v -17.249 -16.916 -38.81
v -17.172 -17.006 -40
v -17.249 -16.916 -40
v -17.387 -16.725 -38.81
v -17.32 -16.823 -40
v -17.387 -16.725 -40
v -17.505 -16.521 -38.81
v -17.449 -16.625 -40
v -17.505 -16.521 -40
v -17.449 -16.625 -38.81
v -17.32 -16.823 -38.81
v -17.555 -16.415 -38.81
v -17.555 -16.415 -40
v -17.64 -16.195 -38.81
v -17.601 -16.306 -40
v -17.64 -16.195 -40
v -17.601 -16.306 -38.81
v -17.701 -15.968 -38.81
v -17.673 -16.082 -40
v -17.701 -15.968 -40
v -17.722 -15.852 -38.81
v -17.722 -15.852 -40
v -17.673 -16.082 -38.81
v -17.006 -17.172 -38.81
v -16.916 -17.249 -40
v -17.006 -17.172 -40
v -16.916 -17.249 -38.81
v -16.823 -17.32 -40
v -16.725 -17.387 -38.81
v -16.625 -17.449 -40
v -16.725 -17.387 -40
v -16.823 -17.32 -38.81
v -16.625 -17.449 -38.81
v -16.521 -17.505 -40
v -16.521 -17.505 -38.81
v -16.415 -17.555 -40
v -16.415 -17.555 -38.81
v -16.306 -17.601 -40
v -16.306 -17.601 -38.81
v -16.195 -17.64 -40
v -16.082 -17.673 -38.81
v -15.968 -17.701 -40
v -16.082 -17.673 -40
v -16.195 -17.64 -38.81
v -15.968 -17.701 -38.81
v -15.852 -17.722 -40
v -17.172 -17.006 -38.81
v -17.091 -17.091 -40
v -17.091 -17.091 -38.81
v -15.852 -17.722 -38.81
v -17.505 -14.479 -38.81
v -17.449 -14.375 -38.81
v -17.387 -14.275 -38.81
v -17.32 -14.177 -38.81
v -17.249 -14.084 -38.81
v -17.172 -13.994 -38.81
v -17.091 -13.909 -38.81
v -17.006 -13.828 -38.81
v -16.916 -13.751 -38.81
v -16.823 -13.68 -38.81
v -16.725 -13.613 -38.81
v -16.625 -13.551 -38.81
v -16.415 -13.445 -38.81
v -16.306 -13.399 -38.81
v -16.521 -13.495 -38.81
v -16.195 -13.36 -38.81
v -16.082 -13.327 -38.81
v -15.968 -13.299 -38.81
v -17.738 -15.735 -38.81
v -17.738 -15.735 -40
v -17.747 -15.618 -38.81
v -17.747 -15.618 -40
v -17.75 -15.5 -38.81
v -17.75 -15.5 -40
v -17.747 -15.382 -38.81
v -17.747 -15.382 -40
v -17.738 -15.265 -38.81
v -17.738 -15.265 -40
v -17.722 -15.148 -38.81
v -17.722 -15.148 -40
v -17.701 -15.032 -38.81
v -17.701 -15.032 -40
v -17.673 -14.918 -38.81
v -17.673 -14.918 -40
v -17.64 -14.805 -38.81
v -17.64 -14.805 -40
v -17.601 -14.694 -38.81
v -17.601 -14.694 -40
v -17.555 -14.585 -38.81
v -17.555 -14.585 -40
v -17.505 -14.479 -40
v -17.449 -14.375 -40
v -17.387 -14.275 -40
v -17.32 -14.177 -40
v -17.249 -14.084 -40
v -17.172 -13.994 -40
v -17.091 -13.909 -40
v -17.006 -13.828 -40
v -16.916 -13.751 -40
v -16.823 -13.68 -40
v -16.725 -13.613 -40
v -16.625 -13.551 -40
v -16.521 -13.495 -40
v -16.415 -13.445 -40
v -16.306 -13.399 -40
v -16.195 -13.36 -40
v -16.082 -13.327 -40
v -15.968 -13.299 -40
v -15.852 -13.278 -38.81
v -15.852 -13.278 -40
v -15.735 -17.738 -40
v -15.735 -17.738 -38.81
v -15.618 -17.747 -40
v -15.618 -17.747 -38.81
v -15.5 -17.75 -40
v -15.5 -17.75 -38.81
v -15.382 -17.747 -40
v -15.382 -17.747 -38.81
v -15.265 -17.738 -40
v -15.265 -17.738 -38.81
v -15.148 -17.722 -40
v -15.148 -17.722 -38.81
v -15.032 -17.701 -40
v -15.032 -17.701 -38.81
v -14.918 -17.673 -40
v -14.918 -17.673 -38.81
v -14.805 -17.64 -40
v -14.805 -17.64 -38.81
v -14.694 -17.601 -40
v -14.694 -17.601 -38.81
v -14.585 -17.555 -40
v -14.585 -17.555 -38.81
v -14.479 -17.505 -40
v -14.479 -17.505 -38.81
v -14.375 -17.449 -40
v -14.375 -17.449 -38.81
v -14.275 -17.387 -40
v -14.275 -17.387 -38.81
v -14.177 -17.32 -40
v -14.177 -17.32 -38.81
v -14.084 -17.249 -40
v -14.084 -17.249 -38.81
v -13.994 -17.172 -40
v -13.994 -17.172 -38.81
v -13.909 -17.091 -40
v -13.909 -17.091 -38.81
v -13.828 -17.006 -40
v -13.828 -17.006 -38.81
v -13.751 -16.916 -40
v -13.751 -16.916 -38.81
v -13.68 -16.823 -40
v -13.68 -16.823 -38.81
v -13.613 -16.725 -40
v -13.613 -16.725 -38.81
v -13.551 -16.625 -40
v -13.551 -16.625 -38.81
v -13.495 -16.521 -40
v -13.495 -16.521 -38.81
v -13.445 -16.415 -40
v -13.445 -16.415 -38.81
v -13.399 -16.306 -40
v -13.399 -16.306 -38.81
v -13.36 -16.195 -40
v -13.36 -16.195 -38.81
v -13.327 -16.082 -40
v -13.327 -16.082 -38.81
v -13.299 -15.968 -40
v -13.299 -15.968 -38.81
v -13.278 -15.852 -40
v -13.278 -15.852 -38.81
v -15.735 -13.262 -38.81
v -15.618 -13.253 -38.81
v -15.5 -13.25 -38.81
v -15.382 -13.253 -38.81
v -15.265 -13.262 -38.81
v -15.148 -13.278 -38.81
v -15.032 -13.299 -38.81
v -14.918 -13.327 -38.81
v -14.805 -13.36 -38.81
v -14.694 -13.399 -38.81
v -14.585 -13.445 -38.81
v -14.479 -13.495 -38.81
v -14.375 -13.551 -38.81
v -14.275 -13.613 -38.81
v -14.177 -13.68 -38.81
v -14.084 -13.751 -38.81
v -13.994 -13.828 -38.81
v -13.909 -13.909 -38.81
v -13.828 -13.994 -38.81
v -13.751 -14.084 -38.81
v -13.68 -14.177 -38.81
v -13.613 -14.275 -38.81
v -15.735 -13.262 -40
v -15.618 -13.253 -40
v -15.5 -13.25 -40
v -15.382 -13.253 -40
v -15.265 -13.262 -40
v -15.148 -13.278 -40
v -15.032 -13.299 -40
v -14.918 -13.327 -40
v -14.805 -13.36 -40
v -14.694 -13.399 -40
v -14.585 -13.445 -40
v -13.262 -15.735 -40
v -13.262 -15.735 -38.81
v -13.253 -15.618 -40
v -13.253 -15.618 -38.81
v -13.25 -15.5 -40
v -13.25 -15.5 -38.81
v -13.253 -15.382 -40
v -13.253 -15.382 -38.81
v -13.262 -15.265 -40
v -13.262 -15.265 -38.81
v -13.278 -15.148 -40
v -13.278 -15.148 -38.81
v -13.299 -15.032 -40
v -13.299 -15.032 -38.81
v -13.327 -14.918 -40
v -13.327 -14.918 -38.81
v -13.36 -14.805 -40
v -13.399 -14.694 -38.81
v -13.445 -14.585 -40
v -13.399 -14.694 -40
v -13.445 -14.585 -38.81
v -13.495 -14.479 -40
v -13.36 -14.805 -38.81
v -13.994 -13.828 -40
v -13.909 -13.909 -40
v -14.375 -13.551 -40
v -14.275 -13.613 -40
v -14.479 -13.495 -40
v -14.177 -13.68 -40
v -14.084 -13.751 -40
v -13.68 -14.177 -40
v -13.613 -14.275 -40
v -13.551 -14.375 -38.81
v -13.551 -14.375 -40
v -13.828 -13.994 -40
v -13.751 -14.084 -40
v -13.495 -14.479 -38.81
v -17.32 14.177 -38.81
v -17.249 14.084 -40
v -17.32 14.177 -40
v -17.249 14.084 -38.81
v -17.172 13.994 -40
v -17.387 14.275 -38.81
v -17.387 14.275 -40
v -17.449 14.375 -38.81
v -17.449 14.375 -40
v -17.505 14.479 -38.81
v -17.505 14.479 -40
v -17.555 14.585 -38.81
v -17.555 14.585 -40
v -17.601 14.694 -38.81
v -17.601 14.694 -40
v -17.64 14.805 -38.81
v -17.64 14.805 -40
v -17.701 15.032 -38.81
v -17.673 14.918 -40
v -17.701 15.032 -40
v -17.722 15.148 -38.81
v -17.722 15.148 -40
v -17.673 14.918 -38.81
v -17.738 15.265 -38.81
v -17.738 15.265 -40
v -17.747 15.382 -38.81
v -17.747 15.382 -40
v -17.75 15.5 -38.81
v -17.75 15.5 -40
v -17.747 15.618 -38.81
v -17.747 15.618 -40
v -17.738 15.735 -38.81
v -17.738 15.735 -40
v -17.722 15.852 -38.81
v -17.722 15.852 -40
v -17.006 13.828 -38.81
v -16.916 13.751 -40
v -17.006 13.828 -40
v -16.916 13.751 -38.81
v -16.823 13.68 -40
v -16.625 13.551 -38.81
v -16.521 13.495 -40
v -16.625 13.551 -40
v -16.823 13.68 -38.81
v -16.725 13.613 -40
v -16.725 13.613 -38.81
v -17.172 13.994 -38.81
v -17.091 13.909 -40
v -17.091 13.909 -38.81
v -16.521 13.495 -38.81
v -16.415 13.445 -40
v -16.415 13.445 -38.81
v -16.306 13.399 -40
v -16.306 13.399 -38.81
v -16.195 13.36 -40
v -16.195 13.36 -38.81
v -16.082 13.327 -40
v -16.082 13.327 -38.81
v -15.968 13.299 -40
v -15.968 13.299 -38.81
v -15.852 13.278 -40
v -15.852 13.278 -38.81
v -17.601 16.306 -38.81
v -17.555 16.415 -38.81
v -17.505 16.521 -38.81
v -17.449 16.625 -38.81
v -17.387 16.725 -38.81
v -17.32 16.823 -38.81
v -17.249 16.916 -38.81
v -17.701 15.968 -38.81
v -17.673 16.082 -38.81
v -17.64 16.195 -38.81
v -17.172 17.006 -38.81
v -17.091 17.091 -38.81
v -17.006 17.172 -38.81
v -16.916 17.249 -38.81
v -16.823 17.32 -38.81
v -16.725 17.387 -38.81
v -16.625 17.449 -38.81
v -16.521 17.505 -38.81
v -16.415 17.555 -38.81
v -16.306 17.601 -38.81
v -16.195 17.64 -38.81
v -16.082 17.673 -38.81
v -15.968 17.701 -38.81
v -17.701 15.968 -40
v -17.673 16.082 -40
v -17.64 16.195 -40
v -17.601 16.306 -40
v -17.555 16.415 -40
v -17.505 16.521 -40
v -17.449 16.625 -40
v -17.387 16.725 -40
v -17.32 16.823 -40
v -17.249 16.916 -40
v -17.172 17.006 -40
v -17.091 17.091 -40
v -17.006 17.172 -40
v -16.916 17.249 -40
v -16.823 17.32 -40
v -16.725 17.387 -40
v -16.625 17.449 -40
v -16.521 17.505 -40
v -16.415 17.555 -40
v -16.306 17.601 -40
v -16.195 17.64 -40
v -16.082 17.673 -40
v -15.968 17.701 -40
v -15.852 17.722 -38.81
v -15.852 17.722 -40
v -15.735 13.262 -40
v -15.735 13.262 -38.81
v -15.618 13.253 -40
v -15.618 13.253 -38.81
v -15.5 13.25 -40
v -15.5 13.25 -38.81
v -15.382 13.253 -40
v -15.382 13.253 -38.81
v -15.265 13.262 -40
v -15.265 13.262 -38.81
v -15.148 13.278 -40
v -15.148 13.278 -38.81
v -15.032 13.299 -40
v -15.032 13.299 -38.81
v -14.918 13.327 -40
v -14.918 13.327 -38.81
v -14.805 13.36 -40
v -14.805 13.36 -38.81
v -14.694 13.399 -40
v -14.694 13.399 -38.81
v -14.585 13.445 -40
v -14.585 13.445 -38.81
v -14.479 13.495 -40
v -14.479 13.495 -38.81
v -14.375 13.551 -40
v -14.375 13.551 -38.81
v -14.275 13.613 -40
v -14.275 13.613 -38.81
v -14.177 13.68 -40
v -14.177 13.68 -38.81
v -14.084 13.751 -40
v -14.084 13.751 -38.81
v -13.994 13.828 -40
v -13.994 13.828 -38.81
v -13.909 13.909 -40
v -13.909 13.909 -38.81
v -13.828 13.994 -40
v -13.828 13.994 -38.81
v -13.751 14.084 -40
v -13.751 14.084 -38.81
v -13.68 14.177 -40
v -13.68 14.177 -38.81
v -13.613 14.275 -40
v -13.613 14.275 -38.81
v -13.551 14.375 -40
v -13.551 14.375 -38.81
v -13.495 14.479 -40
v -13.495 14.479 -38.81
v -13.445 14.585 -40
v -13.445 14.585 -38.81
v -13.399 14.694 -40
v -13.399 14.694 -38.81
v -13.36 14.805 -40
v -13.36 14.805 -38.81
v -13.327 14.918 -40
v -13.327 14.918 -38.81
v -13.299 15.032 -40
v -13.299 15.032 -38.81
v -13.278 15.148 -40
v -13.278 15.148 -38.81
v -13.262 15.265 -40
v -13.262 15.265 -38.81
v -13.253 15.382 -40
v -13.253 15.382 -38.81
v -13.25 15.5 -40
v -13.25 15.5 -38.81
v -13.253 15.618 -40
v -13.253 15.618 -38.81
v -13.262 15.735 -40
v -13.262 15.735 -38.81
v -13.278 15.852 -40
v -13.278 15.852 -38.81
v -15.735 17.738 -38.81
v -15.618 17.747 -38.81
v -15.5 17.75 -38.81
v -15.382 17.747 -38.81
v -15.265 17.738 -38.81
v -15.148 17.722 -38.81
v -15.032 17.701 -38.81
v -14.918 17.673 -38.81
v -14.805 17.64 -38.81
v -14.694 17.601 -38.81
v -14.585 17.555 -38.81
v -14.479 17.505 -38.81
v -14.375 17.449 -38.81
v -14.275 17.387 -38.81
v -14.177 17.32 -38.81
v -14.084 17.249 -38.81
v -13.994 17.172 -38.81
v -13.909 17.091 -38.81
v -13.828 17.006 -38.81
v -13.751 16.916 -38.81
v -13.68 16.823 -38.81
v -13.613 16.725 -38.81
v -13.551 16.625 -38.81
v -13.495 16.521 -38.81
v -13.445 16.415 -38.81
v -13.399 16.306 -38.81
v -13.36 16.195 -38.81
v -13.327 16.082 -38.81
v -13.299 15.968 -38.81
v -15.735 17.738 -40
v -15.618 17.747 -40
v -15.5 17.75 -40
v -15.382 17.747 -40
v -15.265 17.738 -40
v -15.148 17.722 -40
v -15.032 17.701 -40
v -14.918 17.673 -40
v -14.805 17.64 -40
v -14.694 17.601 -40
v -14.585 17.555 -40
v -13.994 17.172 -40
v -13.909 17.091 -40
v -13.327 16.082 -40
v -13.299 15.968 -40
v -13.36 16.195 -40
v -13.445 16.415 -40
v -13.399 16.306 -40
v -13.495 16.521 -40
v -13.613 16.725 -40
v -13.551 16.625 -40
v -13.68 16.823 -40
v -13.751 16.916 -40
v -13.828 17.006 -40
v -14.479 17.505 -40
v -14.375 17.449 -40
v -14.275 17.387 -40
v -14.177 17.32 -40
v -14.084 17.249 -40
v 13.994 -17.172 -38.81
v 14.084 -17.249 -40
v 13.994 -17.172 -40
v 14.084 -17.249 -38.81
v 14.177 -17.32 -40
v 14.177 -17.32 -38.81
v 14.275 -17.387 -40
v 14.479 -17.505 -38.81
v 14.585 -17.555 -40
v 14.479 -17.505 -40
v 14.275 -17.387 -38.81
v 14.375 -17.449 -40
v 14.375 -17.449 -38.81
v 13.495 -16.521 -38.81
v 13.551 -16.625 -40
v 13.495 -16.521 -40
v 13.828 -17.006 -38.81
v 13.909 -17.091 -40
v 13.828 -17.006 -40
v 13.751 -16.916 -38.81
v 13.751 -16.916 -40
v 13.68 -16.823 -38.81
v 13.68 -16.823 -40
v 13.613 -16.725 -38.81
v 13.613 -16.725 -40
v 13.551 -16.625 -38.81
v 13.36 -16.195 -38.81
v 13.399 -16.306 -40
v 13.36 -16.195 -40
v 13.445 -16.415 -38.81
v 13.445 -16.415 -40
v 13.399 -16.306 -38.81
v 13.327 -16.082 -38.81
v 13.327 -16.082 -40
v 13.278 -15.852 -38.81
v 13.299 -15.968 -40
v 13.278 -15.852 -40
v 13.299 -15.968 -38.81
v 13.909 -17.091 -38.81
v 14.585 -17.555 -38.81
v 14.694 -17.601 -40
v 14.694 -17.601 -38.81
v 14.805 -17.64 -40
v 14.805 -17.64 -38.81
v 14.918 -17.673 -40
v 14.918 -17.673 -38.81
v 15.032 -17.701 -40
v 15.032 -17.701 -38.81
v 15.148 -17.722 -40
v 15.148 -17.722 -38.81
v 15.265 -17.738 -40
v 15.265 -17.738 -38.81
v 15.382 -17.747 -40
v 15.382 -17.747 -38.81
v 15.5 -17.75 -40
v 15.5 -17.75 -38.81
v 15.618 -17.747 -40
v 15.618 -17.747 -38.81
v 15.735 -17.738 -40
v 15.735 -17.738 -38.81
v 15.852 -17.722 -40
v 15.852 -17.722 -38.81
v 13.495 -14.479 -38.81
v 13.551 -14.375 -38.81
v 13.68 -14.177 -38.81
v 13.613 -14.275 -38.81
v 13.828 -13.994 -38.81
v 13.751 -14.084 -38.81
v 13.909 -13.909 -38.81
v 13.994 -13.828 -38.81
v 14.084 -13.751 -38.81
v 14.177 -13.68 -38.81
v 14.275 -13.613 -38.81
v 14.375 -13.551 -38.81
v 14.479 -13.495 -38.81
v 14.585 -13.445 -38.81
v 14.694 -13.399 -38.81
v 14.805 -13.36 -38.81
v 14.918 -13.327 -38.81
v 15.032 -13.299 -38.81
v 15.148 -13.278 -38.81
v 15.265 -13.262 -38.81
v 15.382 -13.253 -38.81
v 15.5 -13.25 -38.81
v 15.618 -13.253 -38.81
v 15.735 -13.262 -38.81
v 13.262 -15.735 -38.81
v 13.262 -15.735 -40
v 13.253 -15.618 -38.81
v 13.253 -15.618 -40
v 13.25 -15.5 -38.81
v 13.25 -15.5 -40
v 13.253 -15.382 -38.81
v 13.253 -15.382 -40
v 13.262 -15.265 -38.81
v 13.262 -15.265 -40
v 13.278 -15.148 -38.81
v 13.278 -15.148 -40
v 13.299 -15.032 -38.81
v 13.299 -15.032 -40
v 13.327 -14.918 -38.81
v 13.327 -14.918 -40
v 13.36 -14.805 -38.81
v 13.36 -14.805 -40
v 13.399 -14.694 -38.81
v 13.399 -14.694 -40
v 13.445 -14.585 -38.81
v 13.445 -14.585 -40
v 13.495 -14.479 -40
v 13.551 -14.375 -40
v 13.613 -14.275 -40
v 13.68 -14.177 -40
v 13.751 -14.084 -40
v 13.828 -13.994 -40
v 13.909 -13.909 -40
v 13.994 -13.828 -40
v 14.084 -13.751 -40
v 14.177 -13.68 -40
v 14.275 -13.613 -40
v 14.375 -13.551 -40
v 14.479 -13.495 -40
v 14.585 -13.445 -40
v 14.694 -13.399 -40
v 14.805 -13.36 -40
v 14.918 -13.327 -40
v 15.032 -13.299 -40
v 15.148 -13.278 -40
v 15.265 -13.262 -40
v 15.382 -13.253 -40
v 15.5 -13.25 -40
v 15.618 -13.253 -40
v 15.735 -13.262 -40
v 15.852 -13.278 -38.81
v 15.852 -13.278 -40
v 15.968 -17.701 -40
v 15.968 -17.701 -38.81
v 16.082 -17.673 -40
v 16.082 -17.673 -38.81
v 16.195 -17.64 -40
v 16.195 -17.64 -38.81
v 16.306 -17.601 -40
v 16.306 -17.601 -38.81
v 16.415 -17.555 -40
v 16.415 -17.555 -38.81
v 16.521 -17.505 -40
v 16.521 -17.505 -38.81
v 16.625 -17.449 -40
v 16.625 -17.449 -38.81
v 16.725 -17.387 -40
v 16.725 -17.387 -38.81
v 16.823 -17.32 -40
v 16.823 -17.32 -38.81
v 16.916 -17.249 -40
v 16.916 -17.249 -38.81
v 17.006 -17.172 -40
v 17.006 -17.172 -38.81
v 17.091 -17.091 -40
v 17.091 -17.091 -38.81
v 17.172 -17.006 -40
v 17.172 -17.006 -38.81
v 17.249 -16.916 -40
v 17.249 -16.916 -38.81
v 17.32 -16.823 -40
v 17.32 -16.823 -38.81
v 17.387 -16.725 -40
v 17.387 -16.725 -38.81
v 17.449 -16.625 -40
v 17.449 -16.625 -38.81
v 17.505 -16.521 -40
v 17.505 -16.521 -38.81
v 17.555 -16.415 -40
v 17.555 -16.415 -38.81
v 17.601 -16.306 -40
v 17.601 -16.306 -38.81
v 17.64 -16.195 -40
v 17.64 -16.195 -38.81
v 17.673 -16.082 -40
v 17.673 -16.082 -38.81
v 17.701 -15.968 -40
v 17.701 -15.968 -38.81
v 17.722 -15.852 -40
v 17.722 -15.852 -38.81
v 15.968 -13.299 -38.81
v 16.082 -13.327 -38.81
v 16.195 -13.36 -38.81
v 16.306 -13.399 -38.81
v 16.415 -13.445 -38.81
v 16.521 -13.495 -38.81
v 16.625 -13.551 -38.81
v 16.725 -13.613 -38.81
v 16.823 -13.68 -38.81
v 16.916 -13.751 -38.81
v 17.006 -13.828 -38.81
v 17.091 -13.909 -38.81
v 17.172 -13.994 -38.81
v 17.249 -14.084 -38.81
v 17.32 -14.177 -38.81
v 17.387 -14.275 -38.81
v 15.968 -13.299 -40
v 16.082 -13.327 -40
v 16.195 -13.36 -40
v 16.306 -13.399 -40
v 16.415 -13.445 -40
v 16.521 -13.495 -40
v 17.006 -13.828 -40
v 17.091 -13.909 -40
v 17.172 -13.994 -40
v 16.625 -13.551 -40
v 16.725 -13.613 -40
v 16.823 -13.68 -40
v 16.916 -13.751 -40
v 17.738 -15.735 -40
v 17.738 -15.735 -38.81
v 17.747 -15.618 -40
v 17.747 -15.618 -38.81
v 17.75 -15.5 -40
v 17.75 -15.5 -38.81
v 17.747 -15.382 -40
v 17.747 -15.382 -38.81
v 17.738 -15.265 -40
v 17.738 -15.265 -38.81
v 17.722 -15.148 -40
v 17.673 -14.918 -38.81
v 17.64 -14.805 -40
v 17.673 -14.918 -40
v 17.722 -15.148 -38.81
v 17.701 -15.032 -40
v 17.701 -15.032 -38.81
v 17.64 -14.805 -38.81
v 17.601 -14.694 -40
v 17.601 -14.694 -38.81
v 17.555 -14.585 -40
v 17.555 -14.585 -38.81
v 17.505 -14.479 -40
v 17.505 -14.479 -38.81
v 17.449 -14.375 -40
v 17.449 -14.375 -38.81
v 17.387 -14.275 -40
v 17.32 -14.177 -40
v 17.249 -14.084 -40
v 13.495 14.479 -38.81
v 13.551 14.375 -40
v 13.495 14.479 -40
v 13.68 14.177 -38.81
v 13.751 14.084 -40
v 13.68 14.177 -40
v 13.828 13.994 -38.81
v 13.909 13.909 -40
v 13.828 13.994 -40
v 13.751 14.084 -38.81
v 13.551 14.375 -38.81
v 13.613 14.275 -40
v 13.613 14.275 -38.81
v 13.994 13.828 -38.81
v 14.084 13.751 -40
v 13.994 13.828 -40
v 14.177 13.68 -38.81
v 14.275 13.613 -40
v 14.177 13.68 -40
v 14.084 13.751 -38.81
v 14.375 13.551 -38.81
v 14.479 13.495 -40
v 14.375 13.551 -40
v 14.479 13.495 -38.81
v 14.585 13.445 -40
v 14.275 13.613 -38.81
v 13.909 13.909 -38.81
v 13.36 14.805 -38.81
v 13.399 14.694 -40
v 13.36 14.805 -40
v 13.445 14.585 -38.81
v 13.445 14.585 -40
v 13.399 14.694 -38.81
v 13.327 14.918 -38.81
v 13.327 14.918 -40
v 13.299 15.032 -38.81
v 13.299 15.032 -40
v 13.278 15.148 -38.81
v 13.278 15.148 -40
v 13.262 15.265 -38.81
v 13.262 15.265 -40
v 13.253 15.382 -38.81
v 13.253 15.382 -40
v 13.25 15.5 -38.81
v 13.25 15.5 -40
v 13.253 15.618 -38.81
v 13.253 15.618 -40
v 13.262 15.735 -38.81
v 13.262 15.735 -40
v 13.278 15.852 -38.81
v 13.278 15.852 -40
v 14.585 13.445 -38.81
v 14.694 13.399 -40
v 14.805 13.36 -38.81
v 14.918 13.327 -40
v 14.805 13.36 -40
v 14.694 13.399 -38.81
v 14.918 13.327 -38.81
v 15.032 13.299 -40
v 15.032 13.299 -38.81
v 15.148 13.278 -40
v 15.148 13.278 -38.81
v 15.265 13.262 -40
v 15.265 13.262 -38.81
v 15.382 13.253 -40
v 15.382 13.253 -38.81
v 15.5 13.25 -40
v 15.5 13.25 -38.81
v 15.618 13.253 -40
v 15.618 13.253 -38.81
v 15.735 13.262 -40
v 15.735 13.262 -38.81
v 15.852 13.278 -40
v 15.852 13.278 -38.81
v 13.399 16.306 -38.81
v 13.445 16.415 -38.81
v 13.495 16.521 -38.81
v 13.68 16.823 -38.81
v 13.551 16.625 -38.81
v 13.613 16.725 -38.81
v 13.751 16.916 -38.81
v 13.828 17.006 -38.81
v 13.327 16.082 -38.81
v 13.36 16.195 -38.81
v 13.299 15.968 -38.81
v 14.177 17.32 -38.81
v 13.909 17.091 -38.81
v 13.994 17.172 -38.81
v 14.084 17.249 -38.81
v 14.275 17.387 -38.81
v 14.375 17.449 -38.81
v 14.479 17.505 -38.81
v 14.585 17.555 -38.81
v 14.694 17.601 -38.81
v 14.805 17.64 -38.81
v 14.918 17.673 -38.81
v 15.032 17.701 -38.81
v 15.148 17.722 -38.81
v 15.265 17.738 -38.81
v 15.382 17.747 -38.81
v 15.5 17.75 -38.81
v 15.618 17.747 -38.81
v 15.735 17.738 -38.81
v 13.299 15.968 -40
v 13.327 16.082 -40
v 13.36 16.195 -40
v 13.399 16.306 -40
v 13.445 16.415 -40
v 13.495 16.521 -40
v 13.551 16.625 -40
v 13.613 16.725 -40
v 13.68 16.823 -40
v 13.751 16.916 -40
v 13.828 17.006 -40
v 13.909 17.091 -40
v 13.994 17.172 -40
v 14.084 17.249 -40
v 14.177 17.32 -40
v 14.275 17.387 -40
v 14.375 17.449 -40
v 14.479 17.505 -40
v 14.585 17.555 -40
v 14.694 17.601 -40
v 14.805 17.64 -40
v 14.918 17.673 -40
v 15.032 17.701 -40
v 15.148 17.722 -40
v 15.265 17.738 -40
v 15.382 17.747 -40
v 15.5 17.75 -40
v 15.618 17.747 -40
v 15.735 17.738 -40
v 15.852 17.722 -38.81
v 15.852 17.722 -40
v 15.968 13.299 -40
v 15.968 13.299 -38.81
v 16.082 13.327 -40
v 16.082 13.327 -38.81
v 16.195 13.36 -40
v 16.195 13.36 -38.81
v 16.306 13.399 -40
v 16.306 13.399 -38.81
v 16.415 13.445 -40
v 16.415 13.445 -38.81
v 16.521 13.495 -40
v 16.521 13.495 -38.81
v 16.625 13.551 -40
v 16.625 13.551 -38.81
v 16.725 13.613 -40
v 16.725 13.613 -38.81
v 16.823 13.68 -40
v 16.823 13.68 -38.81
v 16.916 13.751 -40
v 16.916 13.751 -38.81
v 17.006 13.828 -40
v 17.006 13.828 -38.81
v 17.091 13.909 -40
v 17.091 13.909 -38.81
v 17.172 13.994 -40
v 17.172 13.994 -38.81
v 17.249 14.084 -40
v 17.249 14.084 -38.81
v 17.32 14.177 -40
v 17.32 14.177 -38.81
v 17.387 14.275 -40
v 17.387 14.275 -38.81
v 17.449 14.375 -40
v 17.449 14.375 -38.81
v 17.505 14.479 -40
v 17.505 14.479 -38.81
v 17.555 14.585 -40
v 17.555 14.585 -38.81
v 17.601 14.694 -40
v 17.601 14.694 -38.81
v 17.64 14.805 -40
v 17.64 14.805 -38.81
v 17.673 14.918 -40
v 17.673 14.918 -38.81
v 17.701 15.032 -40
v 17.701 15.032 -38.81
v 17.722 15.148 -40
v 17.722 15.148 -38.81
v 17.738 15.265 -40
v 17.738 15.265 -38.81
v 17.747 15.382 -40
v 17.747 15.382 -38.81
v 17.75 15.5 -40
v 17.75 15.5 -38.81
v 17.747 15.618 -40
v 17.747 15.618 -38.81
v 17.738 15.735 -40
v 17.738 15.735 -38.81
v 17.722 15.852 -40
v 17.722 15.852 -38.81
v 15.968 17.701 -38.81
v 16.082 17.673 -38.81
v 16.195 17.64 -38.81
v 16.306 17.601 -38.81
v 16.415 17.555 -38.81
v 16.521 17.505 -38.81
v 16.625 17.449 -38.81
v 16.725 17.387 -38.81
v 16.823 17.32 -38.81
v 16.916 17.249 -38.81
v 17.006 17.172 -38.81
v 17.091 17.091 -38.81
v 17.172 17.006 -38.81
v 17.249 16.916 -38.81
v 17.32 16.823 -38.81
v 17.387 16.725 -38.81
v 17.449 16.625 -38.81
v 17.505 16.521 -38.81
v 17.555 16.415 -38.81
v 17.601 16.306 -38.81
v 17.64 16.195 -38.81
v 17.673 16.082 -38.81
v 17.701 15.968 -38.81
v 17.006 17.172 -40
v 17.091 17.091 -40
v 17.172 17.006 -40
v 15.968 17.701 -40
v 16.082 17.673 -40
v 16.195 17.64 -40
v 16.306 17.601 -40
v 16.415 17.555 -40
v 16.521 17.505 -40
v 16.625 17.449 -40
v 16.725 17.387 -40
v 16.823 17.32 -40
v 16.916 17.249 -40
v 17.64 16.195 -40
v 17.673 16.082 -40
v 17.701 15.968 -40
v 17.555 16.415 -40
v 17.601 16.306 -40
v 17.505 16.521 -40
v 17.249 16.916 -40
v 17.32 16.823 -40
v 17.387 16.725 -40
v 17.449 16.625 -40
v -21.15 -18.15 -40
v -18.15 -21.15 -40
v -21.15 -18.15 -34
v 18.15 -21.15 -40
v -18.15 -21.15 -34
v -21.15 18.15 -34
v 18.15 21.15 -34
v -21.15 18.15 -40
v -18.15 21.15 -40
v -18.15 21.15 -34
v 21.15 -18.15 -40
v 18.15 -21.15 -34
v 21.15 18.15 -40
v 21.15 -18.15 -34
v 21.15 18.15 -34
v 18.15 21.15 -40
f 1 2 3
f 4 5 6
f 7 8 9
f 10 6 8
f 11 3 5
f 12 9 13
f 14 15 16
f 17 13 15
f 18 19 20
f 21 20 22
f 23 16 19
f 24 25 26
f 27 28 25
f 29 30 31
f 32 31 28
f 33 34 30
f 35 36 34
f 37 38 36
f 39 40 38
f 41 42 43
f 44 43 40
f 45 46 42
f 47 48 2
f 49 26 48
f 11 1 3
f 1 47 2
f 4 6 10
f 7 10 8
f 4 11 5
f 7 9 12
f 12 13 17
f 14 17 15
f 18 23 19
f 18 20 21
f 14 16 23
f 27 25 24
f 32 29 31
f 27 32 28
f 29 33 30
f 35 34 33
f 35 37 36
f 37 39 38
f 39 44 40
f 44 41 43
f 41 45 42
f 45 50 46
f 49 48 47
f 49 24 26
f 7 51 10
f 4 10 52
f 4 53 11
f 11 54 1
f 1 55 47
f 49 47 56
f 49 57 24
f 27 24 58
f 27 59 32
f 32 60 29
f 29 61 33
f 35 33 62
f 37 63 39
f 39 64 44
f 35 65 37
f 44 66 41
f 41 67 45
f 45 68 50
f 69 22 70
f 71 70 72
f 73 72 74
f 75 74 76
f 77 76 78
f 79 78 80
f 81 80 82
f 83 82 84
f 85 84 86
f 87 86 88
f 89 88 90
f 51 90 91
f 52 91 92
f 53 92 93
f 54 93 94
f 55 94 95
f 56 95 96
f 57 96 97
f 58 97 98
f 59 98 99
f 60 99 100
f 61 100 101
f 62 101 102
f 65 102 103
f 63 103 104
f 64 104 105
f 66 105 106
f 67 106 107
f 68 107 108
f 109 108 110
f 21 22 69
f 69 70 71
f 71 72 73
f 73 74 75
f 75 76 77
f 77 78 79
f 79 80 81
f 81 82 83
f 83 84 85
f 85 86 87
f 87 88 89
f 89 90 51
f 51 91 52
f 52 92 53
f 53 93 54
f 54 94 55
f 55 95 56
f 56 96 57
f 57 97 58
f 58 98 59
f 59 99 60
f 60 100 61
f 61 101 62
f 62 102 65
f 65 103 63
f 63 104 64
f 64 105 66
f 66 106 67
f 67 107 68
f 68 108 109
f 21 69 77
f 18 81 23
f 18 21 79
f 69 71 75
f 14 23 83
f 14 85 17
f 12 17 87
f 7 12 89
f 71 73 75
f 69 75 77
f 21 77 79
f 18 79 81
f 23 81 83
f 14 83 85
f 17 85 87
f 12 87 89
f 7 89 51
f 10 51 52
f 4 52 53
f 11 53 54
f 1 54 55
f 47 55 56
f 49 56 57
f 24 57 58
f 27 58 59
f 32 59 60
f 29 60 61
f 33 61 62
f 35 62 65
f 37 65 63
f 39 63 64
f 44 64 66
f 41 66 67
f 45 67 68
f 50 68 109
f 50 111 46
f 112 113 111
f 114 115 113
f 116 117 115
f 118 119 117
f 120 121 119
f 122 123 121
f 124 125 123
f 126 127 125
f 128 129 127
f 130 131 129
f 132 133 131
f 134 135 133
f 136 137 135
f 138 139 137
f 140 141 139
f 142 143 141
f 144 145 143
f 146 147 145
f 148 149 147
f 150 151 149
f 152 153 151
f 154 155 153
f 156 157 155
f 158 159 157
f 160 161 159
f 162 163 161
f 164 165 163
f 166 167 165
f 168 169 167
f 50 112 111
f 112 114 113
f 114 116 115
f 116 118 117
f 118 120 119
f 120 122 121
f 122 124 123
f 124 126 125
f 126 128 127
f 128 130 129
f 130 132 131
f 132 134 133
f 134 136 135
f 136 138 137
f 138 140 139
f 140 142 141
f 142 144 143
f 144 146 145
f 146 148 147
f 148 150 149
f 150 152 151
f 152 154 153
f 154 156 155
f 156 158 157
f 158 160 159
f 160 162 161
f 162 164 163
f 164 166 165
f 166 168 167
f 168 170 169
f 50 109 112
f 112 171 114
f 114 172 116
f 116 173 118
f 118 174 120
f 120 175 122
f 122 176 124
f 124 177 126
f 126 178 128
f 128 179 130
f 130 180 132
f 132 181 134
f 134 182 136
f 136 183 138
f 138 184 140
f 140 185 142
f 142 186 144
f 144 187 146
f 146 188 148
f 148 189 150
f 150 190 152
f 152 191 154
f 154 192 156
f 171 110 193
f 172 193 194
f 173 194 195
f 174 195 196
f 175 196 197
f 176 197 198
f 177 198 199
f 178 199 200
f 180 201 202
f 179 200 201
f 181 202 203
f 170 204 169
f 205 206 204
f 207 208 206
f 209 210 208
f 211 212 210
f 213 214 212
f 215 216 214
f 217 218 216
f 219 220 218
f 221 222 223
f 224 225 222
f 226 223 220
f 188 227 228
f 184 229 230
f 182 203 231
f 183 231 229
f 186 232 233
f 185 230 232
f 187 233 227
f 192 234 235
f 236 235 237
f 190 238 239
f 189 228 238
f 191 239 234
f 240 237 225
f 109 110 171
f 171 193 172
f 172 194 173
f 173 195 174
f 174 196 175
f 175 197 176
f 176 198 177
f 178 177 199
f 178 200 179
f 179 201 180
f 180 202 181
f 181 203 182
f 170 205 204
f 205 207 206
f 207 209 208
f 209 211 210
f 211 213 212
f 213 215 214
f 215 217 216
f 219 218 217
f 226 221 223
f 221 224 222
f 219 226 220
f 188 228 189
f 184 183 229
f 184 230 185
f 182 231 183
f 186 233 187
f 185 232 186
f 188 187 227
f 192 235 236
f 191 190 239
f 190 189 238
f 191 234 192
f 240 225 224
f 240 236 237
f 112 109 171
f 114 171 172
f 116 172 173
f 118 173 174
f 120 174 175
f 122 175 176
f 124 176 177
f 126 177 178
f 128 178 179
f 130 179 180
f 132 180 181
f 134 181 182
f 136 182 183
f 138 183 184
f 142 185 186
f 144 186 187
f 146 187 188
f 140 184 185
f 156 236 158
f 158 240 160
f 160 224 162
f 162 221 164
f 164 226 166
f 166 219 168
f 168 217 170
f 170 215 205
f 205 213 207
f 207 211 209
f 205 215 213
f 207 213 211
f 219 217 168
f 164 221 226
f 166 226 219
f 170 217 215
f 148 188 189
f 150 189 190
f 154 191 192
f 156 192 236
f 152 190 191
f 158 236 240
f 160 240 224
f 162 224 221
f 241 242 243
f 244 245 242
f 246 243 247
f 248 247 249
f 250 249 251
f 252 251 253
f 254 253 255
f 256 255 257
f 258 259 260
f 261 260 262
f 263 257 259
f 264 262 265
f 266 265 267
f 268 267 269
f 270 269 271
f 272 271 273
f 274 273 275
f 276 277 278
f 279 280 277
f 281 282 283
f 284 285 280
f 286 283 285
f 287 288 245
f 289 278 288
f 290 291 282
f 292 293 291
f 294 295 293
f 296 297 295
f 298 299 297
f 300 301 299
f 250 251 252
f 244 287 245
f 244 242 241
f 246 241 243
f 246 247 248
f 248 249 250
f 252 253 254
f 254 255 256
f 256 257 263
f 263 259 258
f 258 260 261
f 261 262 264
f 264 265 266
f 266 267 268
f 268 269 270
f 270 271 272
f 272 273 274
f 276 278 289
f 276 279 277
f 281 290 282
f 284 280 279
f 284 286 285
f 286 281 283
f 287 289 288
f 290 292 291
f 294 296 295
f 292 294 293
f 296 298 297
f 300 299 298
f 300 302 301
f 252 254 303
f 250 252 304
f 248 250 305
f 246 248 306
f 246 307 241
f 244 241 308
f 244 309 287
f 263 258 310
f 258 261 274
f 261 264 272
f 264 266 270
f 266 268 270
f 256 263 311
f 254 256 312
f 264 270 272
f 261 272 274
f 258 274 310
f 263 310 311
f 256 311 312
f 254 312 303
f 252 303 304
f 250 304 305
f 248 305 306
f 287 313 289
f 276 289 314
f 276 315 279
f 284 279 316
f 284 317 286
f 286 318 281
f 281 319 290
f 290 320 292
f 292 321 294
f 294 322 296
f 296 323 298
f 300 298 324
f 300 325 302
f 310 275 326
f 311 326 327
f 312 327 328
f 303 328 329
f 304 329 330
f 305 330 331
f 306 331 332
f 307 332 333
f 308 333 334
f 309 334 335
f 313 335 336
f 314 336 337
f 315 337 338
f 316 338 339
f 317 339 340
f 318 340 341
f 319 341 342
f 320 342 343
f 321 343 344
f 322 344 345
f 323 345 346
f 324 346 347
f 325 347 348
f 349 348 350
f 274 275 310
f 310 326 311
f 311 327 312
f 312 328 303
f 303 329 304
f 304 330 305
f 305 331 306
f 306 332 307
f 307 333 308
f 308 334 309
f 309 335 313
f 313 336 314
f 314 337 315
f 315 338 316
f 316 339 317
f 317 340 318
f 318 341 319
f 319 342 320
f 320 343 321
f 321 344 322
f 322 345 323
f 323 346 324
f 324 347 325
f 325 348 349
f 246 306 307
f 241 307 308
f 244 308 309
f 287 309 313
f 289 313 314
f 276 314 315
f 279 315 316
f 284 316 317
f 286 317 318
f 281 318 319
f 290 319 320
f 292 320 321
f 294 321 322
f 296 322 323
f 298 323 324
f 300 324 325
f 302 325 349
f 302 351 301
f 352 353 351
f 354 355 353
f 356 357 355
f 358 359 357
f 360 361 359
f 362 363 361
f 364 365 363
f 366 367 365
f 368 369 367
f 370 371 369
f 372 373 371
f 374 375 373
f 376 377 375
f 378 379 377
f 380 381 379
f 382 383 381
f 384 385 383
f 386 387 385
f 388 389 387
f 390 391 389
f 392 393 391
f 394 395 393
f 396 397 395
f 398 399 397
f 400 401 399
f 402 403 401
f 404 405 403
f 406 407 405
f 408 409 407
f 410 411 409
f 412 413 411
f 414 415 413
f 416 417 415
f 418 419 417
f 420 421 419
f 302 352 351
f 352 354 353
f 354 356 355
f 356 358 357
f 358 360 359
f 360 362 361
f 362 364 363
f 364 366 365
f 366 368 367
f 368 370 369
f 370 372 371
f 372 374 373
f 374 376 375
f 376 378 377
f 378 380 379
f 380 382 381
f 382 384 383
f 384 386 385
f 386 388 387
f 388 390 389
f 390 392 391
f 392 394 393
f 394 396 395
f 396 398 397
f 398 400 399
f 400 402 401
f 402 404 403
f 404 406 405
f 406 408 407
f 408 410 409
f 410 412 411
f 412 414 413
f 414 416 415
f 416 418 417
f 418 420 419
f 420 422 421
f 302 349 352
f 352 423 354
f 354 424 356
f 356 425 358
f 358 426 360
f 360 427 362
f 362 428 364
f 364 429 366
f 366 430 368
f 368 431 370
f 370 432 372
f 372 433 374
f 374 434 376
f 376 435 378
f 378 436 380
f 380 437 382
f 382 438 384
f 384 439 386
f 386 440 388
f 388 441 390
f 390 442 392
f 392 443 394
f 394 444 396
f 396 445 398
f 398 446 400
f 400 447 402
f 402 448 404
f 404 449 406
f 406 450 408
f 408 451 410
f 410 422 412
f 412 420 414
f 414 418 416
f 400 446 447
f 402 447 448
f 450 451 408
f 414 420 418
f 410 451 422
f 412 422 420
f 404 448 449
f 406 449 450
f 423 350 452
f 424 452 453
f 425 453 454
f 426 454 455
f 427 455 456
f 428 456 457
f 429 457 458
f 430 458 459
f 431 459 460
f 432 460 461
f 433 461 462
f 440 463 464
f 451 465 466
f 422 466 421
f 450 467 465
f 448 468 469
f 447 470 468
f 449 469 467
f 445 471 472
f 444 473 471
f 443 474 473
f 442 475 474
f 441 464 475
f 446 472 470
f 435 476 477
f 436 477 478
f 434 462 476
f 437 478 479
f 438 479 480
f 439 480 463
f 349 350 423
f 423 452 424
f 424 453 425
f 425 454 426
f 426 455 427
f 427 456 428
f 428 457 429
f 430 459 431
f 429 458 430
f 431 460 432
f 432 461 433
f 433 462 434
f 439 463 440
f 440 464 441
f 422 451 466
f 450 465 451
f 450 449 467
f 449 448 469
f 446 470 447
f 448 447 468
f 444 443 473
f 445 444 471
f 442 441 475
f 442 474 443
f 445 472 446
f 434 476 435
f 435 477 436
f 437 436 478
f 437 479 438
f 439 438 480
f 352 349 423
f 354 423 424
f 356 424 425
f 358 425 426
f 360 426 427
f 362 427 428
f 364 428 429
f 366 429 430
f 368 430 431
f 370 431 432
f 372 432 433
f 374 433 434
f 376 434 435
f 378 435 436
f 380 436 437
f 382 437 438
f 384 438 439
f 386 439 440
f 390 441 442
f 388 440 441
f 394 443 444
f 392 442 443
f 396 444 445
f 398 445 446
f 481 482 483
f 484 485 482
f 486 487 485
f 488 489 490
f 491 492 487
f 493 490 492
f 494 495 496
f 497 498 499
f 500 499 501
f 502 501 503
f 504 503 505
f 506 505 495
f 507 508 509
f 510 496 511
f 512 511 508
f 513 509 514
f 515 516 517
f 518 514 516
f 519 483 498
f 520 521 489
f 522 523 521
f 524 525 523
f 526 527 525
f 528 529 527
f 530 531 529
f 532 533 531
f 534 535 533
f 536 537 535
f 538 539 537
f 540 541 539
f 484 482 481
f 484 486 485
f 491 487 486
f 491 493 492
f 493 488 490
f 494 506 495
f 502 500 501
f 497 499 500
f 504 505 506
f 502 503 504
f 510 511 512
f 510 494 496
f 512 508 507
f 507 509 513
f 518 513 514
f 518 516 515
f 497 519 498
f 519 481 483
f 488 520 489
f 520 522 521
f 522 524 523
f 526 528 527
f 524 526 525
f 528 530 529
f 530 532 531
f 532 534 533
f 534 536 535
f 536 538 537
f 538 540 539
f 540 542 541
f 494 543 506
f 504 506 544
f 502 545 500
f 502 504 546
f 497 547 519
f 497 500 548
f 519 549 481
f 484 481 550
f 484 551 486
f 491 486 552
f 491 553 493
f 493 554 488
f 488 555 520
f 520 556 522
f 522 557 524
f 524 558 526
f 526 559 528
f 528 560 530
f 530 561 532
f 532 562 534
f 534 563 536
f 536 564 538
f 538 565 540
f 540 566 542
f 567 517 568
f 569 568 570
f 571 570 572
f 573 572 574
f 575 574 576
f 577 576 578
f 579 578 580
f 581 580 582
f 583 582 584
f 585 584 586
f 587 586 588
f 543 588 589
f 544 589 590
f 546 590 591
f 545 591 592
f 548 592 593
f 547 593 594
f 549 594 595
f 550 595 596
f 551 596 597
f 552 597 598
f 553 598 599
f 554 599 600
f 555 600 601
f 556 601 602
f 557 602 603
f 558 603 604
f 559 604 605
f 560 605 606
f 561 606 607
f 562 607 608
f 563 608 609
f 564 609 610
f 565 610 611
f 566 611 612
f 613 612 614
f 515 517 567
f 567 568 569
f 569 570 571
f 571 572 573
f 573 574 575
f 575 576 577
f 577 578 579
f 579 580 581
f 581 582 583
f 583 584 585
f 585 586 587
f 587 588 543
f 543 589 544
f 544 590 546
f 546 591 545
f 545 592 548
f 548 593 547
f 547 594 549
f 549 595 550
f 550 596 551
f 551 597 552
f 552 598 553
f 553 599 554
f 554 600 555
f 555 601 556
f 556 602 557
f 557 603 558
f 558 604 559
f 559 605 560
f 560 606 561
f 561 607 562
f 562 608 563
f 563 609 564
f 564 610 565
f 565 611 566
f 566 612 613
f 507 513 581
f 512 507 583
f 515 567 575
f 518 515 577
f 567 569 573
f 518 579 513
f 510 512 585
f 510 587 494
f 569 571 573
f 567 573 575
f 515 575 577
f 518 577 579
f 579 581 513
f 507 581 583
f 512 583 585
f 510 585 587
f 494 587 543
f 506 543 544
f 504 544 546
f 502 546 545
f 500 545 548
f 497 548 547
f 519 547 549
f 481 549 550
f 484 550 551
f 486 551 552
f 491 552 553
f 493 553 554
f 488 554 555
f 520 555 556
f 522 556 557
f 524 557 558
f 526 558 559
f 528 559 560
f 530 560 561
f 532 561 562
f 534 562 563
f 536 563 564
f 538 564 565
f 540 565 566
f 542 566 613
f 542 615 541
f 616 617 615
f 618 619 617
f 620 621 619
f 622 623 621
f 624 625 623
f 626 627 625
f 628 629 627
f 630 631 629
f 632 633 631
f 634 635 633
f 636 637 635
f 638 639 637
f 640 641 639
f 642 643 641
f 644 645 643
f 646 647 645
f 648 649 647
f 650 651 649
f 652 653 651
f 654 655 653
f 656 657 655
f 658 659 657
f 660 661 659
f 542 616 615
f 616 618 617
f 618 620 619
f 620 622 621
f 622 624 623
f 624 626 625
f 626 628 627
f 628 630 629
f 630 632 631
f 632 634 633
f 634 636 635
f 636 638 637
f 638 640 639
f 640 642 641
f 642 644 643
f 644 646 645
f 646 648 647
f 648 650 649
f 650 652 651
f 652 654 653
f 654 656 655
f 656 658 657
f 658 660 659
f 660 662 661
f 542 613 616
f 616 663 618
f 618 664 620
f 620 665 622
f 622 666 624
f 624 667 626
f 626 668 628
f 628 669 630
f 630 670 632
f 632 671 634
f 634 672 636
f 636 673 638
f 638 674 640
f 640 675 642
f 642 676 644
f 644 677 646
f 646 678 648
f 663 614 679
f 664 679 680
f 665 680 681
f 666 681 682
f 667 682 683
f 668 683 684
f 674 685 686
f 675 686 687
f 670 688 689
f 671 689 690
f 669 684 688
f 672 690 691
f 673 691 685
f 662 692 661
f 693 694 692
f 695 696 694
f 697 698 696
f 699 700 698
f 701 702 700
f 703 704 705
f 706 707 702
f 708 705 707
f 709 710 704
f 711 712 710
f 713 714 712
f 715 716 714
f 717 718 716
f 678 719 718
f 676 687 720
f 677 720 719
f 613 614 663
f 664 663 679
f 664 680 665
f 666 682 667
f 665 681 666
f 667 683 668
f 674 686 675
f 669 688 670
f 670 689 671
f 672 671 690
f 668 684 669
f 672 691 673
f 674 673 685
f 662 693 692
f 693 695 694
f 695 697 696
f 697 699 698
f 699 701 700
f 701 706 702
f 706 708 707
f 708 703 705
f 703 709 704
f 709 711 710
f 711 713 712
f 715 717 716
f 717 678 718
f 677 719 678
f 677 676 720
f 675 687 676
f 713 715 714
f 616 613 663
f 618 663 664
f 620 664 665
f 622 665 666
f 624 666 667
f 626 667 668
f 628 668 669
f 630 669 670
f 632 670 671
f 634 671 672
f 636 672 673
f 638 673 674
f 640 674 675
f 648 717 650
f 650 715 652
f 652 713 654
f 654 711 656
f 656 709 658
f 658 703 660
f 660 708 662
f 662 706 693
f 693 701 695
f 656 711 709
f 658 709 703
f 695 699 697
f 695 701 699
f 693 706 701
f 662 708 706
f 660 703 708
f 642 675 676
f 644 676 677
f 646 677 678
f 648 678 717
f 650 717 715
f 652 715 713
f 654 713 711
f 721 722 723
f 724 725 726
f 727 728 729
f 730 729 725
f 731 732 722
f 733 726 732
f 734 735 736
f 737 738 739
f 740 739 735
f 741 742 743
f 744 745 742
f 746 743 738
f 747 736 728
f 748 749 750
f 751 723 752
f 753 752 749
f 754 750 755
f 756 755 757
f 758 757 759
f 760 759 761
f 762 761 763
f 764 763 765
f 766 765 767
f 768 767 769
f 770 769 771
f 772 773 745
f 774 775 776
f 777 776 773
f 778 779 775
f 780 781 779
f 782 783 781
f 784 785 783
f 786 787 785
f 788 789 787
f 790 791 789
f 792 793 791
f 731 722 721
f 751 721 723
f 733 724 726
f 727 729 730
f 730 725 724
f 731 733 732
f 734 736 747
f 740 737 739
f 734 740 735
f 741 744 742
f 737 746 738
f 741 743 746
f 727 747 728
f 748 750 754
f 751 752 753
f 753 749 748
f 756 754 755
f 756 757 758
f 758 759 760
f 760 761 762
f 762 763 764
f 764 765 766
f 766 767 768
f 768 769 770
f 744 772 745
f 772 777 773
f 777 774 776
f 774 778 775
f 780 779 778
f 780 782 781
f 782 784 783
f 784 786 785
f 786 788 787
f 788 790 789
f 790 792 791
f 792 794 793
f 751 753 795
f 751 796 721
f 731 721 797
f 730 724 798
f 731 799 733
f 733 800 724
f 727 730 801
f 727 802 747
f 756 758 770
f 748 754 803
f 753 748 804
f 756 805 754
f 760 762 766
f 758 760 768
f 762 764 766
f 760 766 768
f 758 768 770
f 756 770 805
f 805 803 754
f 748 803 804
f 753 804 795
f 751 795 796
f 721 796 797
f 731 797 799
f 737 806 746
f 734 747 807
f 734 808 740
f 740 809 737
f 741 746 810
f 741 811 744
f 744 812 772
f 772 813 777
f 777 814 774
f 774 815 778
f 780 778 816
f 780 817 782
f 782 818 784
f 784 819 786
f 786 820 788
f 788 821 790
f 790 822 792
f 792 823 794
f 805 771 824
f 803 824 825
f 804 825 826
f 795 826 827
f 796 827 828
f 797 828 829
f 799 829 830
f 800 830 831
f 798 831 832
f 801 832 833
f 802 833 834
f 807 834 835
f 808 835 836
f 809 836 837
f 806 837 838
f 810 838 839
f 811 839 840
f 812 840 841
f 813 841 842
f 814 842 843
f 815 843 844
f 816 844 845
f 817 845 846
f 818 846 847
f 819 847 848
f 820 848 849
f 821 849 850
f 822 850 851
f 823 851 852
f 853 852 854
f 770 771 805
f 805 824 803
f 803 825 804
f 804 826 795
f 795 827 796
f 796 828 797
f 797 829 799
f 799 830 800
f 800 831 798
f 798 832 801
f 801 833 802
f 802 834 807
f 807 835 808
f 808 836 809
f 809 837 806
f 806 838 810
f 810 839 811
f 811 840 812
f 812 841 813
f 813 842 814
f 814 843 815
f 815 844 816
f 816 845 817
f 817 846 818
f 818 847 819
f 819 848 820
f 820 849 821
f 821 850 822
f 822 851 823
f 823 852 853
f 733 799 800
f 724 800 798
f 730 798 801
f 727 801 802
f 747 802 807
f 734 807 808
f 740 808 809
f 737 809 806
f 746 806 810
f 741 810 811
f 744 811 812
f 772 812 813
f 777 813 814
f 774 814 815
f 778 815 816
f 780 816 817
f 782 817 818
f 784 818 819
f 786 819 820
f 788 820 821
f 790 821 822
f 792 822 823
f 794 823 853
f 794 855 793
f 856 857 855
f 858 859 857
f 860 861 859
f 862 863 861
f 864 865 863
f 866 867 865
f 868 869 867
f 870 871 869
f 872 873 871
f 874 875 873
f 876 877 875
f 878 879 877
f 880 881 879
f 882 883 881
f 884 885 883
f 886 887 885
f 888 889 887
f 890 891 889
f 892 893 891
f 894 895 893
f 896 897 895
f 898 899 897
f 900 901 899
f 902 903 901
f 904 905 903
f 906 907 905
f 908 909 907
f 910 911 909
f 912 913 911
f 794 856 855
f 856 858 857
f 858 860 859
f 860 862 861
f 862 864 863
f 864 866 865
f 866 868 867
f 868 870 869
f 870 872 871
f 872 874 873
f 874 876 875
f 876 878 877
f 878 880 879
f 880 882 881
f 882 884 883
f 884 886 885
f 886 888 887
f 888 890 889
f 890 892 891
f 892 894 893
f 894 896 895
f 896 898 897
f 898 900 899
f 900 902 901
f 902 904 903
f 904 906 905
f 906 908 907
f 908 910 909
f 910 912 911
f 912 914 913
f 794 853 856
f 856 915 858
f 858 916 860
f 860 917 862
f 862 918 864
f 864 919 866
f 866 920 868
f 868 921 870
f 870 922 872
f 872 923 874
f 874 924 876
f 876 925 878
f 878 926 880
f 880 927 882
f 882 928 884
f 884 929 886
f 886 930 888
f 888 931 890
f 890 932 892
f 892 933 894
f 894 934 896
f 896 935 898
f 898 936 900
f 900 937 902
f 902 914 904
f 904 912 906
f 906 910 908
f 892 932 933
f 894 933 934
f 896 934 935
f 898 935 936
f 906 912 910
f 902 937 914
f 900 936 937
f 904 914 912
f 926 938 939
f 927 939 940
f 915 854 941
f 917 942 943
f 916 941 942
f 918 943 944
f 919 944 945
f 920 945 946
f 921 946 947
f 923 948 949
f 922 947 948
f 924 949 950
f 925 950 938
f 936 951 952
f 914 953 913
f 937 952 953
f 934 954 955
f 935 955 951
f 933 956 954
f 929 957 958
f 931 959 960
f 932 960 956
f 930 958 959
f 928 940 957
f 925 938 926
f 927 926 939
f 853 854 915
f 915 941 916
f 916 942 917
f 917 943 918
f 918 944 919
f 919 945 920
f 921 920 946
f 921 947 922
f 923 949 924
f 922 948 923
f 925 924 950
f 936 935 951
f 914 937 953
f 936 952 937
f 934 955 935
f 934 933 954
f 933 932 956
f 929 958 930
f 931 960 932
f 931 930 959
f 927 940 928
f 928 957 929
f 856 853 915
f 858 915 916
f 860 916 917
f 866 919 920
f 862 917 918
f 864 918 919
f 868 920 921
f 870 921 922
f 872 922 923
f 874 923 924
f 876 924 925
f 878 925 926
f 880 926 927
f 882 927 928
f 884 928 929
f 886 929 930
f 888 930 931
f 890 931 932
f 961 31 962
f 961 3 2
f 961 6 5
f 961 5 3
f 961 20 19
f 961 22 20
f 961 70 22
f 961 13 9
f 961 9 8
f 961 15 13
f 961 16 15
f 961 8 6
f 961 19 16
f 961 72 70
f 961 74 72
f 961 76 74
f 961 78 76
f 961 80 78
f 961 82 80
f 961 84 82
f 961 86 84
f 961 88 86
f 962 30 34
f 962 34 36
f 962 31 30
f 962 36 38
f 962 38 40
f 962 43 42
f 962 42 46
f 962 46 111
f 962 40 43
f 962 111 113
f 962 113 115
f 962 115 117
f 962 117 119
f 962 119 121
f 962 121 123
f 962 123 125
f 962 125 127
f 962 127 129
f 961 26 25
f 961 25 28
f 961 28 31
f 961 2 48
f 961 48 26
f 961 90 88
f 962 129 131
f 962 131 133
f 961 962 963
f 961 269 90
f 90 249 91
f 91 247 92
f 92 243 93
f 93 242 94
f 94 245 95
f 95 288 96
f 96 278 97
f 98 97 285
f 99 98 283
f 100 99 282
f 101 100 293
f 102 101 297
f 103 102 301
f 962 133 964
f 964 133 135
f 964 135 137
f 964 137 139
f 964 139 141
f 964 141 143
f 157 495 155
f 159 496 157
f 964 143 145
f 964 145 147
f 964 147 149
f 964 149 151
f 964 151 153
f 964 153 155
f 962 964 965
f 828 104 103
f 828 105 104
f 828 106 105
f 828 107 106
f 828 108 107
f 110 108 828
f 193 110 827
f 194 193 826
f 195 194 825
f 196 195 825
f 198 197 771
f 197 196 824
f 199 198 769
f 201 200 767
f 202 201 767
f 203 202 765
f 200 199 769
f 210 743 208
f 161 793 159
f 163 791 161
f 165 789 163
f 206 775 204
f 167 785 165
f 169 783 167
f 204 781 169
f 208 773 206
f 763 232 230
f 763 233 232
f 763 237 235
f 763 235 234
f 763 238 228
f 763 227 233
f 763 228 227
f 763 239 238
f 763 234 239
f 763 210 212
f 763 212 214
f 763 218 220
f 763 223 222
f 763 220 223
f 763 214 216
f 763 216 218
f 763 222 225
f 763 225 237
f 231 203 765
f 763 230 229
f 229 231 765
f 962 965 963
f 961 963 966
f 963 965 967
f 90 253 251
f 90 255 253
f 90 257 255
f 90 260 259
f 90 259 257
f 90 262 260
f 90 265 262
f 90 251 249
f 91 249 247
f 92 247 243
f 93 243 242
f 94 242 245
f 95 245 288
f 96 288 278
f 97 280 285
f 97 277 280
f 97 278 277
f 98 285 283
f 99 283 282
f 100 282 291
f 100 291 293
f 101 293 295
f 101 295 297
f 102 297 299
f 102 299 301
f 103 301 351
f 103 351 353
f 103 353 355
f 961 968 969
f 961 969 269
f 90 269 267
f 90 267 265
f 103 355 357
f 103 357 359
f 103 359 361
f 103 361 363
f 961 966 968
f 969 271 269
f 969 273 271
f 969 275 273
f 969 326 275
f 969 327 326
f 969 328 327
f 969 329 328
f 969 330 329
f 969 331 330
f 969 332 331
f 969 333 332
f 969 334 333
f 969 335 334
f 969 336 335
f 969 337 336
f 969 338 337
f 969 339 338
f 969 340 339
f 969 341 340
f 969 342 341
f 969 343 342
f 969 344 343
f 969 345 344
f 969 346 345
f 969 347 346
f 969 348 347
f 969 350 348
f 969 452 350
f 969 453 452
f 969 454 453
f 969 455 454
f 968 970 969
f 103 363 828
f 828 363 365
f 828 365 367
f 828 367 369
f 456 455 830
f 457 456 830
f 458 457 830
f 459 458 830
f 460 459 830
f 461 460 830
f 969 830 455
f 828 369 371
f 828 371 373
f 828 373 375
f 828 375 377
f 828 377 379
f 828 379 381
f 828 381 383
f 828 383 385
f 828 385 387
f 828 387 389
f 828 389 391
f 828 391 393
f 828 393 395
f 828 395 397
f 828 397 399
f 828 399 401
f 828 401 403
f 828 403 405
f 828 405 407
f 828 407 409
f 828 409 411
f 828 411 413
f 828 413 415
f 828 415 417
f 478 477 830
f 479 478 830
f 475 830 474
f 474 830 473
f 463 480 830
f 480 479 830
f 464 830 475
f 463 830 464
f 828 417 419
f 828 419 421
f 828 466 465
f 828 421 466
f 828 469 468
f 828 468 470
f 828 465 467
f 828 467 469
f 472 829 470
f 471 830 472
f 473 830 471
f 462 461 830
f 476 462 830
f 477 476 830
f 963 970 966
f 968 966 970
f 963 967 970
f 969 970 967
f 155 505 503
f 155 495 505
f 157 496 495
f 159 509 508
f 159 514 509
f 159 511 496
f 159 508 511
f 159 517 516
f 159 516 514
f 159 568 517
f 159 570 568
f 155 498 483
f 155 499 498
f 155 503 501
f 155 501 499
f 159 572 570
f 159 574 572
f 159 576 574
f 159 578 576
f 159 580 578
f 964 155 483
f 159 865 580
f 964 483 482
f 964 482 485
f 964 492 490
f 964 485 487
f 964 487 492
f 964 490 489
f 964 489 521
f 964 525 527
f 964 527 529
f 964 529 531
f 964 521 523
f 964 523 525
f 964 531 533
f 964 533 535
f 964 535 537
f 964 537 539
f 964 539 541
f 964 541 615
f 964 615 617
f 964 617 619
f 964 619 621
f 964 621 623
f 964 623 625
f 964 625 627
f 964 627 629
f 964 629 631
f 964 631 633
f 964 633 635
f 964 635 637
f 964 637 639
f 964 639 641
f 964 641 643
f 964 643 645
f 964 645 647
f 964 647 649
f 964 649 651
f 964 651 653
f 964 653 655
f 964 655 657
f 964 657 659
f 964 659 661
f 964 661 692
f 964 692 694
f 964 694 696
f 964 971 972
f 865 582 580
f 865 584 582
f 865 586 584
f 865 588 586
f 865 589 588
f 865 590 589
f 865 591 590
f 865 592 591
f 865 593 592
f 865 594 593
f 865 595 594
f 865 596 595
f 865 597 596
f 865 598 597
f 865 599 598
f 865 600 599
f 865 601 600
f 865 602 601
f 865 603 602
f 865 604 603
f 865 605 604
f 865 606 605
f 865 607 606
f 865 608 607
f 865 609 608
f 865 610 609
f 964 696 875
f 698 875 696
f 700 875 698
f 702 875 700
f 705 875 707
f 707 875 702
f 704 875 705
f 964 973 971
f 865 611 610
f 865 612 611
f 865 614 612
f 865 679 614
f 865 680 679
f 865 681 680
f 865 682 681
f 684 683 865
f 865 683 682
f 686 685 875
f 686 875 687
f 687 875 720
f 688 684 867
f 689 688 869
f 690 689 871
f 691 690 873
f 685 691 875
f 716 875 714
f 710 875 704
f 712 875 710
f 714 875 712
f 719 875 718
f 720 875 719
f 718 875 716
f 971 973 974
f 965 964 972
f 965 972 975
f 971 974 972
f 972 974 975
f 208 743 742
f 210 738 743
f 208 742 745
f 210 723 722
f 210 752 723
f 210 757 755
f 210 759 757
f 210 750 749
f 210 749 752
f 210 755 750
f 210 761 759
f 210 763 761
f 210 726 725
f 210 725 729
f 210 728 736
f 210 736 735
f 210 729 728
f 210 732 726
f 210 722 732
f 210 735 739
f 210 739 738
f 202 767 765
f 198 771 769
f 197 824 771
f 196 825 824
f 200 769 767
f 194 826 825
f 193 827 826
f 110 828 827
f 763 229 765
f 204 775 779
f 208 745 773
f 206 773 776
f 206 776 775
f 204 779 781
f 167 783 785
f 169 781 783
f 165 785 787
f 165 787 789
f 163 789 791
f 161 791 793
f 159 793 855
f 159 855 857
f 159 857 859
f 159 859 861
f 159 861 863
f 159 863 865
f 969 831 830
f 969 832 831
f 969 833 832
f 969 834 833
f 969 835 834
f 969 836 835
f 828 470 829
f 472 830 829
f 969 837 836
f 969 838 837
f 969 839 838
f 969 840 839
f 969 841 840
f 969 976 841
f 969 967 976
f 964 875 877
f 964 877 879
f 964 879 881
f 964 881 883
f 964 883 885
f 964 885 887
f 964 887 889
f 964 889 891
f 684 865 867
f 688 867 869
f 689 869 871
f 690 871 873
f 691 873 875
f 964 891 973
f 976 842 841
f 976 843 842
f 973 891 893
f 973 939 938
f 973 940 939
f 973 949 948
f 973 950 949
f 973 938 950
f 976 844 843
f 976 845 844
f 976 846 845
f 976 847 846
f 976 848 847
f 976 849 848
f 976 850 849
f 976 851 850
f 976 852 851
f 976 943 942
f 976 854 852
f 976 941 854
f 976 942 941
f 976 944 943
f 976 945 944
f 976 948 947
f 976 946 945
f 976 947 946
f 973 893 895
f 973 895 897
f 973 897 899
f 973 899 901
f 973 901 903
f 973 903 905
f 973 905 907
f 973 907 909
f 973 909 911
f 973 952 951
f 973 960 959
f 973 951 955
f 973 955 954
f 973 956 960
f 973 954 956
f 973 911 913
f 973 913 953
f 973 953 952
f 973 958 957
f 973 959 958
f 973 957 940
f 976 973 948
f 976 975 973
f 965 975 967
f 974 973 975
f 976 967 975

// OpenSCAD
// file: C:/od/OneDrive/Documents/ChatGPT/oomlout_oobb_part_motor_gearbox_wave_drive_version_5/parts/oobb_part_motor_gearbox_wave_drive_version_5_12_to_1_reduction/nema17_reference.scad
// Visual reference matching the previous cycloidal project's 40 mm motor envelope.
// Face is Z=0; motor body extends towards -Z and shaft towards +Z.
// End caps, corner chamfers and connector are illustrative external details.
// This is purchased reference hardware, never a printable gearbox component.
module nema17_outline(width=42.3,depth=6,chamfer=3) {
    w=width/2;
    linear_extrude(depth) polygon([
        [-w+chamfer,-w],[w-chamfer,-w],[w,-w+chamfer],[w,w-chamfer],
        [w-chamfer,w],[-w+chamfer,w],[-w,w-chamfer],[-w,-w+chamfer]
    ]);
}
module nema17_front() {
    difference() {
        translate([0,0,-motor_cap_depth])
            nema17_outline(motor_body_width,motor_cap_depth,motor_corner_chamfer);
        for(x=[-motor_hole_pitch/2,motor_hole_pitch/2],y=[-motor_hole_pitch/2,motor_hole_pitch/2])
            translate([x,y,-motor_thread_depth]) cylinder(d=3,h=motor_thread_depth+0.01);
        translate([0,0,-motor_cap_depth-0.01]) cylinder(d=motor_shaft_diameter,h=motor_cap_depth+0.02);
    }
}
module nema17_stator() {
    translate([0,0,-motor_body_depth+motor_cap_depth])
        nema17_outline(motor_body_width,motor_body_depth-2*motor_cap_depth,motor_corner_chamfer);
}
module nema17_rear() {
    difference() {
        translate([0,0,-motor_body_depth])
            nema17_outline(motor_body_width,motor_cap_depth,motor_corner_chamfer);
        for(x=[-motor_hole_pitch/2,motor_hole_pitch/2],y=[-motor_hole_pitch/2,motor_hole_pitch/2])
            translate([x,y,-motor_body_depth-0.01]) cylinder(d=4.5,h=1.2);
    }
}
module nema17_pilot() {
    difference() {
        cylinder(d=motor_pilot_diameter,h=motor_pilot_height);
        translate([0,0,-0.01]) cylinder(d=motor_shaft_diameter,h=motor_pilot_height+0.02);
    }
}
module nema17_shaft() {
    linear_extrude(motor_shaft_length) intersection() {
        circle(d=motor_shaft_diameter);
        translate([-10,-10]) square([10+motor_shaft_diameter/2-motor_shaft_flat_depth,20]);
    }
}
module nema17_connector() {
    // Indicative connector envelope; actual cable exit depends on motor model.
    translate([-7,motor_body_width/2-1,-motor_body_depth+motor_cap_depth])
        cube([14,5,7]);
}
module nema17_reference() {
    color("Silver") { nema17_front(); nema17_rear(); nema17_pilot(); nema17_shaft(); }
    color([0.08,0.08,0.08]) nema17_stator();
    color([0.2,0.2,0.2]) nema17_connector();
}
// file: C:/od/OneDrive/Documents/ChatGPT/oomlout_oobb_part_motor_gearbox_wave_drive_version_5/parts/oobb_part_motor_gearbox_wave_drive_version_5_12_to_1_reduction/motor_reference_parameters.scad
// Purchased motor envelope. Recipe defines body, shaft and mounting dimensions.
motor_body_depth = 40.0;
motor_shaft_length = 24.0;
motor_hole_pitch = 31.0;
motor_thread_depth = 6.0;
motor_pilot_diameter = 22.0;
motor_pilot_height = 2.0;
motor_shaft_end_clearance = 0.5;
motor_thread_engagement = 5.2;
motor_shaft_diameter = 5.0;
motor_body_width = 42.3;
motor_cap_depth = 6.0;
motor_corner_chamfer = 3.0;
motor_shaft_flat_depth = 0.5;
motor_face_z = 0.0;
// main file
include <C:/od/OneDrive/Documents/ChatGPT/oomlout_oobb_part_motor_gearbox_wave_drive_version_5/parts/oobb_part_motor_gearbox_wave_drive_version_5_12_to_1_reduction/motor_reference_parameters.scad>
include <C:/od/OneDrive/Documents/ChatGPT/oomlout_oobb_part_motor_gearbox_wave_drive_version_5/parts/oobb_part_motor_gearbox_wave_drive_version_5_12_to_1_reduction/nema17_reference.scad>
$fn=120;
nema17_rear();
